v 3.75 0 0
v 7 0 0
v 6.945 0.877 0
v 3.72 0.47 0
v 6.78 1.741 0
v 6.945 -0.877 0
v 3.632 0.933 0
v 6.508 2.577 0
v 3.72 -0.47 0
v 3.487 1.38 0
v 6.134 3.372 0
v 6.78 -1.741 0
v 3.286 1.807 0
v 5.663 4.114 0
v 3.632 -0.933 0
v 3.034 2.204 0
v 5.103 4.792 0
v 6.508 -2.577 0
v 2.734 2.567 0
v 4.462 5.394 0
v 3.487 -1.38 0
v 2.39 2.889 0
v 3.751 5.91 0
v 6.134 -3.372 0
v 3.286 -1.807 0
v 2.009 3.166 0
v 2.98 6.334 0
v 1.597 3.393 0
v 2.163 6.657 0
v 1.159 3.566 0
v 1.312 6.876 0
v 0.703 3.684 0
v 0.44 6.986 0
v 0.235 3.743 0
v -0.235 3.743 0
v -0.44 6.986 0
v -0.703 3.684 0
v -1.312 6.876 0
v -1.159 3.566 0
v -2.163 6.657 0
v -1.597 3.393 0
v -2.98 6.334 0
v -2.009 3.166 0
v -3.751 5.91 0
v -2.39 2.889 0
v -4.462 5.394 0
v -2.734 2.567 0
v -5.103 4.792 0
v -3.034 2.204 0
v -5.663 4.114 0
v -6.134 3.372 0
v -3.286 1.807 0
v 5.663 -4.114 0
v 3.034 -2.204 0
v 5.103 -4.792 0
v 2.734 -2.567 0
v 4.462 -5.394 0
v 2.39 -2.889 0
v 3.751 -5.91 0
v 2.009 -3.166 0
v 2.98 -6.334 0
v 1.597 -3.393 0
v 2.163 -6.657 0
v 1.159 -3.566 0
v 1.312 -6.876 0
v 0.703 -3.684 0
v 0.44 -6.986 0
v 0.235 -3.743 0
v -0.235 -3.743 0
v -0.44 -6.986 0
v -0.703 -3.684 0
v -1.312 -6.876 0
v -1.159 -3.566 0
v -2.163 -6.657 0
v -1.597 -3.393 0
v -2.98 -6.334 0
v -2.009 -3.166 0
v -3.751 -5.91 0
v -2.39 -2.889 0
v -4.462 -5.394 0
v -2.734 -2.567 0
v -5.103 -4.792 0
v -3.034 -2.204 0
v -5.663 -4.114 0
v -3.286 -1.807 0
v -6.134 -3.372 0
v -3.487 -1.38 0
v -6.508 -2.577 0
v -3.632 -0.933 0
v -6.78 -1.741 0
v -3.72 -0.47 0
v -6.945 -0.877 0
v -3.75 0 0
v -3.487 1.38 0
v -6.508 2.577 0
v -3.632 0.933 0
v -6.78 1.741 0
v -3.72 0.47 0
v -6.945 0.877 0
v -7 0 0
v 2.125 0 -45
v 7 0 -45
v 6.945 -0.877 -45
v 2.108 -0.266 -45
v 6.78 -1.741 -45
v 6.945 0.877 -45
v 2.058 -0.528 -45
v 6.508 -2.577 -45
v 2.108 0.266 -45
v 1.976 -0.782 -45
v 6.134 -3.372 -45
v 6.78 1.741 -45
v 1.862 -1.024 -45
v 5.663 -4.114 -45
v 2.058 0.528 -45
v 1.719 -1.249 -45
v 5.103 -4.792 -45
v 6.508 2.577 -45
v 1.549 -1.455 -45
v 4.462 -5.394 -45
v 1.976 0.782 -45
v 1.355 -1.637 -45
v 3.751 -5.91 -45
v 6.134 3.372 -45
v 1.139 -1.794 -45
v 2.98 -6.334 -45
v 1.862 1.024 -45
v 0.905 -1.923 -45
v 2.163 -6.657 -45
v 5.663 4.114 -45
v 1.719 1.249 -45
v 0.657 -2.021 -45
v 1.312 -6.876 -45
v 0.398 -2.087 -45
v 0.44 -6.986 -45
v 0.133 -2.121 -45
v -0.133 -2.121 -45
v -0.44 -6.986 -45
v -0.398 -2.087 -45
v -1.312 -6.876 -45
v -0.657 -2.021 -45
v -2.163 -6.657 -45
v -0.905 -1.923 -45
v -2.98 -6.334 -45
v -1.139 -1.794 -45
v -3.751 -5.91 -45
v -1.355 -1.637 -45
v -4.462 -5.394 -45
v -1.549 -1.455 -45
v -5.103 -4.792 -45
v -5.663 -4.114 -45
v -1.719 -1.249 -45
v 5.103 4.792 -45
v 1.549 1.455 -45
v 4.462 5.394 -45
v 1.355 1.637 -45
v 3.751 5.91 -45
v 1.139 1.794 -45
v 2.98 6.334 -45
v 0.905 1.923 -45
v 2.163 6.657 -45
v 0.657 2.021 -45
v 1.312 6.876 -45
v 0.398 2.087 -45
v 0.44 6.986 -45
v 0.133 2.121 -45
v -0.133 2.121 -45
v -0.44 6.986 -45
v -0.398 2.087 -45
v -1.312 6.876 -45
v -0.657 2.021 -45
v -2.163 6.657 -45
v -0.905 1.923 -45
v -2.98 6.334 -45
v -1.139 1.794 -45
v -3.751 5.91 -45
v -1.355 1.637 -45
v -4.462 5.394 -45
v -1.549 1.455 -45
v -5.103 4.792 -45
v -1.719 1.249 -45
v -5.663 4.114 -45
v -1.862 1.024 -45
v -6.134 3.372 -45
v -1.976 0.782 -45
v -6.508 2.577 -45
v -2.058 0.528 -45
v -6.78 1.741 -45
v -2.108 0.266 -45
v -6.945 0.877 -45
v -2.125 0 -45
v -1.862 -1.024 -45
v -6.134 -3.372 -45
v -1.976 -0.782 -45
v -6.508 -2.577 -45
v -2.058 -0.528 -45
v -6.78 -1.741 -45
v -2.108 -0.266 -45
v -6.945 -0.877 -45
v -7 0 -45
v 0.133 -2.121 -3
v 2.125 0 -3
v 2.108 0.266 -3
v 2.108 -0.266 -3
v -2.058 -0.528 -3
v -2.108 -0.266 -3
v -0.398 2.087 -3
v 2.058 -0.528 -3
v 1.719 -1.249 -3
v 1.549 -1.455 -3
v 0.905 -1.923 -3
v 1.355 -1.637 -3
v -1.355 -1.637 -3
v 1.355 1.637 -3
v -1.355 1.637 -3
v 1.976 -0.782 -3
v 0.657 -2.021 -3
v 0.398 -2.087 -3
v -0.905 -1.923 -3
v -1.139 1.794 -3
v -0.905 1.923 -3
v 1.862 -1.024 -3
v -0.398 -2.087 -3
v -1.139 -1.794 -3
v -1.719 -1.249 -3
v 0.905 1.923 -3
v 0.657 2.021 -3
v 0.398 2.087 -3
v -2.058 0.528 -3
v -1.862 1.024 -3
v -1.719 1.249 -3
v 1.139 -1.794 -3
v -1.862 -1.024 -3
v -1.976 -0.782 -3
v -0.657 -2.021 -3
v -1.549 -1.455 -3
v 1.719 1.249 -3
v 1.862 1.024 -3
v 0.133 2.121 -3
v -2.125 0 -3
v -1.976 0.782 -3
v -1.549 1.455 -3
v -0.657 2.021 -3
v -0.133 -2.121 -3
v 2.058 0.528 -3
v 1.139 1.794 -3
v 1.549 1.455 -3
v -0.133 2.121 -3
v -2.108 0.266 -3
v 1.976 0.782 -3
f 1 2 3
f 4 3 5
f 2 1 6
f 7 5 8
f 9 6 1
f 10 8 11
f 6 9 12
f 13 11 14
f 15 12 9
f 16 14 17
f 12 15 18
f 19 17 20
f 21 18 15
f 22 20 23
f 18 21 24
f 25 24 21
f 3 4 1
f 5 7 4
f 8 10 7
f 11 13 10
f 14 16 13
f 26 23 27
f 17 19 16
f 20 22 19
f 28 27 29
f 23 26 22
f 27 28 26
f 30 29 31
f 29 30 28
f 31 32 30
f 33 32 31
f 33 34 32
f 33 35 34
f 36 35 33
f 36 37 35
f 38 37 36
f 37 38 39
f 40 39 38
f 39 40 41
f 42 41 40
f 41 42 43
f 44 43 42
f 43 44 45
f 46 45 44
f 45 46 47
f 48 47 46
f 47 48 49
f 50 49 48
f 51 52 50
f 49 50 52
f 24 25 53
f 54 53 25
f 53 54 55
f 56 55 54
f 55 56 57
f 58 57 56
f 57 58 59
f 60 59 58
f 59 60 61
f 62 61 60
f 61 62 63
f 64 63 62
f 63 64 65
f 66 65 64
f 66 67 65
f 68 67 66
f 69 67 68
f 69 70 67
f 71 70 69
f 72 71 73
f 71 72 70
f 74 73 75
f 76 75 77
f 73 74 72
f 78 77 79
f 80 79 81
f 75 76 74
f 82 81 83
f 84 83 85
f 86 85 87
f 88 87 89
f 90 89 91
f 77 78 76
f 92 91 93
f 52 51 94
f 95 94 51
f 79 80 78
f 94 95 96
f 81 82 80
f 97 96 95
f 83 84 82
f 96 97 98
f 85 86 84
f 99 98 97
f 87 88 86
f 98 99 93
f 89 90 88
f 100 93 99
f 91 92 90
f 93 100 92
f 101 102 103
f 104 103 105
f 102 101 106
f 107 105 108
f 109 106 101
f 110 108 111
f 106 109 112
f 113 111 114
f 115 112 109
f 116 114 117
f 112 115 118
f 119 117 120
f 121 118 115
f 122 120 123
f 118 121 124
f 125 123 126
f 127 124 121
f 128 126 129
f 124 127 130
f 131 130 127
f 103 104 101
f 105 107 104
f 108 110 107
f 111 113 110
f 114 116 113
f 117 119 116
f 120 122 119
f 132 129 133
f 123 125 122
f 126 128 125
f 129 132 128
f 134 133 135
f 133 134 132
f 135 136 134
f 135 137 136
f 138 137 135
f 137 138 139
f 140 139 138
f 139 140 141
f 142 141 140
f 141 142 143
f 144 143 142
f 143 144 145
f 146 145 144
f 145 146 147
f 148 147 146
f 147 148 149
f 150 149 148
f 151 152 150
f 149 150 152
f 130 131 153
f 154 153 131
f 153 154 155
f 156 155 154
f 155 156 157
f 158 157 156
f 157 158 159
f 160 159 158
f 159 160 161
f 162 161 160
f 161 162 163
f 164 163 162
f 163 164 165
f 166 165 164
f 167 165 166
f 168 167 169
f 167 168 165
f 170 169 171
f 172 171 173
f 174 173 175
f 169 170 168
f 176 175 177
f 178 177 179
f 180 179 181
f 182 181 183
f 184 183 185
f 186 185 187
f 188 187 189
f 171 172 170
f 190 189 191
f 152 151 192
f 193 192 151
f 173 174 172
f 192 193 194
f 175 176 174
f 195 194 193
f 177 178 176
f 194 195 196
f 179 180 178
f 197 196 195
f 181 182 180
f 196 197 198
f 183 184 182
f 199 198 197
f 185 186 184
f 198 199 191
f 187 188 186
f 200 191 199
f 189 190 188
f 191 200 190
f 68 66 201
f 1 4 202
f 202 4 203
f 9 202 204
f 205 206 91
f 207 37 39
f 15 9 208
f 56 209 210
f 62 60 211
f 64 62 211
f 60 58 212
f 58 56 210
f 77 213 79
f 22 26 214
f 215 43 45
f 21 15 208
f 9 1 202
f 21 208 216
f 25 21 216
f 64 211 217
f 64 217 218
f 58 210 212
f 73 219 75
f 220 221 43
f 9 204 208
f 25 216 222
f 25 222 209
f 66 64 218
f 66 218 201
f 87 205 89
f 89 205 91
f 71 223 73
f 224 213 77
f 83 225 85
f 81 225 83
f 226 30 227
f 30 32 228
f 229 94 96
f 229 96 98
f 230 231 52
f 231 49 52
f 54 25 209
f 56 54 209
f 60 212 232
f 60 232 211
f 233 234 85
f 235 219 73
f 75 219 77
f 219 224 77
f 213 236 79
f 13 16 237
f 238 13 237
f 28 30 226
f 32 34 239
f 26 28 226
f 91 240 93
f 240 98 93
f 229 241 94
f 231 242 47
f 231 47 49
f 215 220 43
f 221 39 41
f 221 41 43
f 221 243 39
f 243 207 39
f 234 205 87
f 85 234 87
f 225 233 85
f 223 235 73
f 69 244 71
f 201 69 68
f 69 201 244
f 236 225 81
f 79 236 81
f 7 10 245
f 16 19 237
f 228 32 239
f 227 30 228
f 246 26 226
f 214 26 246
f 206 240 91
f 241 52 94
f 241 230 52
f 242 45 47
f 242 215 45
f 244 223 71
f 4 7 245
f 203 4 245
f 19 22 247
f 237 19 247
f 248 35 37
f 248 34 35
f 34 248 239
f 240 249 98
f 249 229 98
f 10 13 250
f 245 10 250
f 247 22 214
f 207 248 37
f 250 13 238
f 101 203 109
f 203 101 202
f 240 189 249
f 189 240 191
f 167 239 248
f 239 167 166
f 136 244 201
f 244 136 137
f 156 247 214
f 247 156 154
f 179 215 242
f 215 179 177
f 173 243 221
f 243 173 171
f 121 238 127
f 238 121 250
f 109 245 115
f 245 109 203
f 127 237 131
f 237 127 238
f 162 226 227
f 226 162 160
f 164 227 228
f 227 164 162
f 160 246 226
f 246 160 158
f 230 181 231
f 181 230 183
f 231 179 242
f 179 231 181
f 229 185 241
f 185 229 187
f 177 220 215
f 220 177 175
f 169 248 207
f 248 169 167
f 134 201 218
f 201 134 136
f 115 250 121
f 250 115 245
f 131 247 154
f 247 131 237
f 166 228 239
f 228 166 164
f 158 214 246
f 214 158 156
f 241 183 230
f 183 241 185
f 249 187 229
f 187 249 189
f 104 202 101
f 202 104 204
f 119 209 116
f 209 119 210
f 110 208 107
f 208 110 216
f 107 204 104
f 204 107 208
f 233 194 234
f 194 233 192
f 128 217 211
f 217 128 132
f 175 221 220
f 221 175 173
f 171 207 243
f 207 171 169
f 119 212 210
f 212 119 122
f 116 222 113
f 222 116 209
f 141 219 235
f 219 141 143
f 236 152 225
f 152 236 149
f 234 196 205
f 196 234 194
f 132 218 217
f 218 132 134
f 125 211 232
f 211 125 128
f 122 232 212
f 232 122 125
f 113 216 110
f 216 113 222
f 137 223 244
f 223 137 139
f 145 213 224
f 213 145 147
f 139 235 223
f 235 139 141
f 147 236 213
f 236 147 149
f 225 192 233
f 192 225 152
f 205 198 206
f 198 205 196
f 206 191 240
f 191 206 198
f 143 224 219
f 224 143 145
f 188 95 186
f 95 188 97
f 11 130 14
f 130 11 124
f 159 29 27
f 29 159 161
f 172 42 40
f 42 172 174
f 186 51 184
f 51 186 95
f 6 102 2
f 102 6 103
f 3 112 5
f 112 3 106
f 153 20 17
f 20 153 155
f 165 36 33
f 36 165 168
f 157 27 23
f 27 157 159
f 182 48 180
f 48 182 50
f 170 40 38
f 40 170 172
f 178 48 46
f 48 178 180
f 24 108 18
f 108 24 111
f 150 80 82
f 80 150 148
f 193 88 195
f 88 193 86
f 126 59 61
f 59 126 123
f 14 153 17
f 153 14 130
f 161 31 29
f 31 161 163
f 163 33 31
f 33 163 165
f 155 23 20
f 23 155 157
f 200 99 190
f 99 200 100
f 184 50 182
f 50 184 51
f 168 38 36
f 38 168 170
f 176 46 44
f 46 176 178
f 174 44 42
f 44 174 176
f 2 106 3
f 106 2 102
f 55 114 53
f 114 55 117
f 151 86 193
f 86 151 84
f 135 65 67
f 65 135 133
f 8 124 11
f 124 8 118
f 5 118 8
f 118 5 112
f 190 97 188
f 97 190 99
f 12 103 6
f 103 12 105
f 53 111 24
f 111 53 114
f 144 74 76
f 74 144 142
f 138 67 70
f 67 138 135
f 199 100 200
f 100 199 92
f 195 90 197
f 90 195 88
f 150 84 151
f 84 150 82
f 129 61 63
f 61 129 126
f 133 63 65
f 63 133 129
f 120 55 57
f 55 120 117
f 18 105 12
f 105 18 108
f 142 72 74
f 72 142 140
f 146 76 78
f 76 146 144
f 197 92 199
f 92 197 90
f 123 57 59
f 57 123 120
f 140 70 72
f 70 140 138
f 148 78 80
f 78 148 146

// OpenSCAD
$fn = 50;


difference() {
	union() {
		translate(v = [0, 0, -45.0000000000]) {
			cylinder(h = 45, r = 7.0000000000);
		}
	}
	union() {
		translate(v = [0, 0, 0]) {
			rotate(a = [0, 0, 0]) {
				difference() {
					union() {
						#translate(v = [0, 0, -45.0000000000]) {
							cylinder(h = 45, r = 2.0000000000);
						}
						#translate(v = [0, 0, -3]) {
							cylinder(h = 3, r = 7.0000000000, r1 = 2.1250000000, r2 = 3.7500000000);
						}
						#translate(v = [0, 0, -45.0000000000]) {
							cylinder(h = 45, r = 2.1250000000);
						}
						#translate(v = [0, 0, -45.0000000000]) {
							cylinder(h = 45, r = 2.0000000000);
						}
					}
					union();
				}
			}
		}
	}
}
